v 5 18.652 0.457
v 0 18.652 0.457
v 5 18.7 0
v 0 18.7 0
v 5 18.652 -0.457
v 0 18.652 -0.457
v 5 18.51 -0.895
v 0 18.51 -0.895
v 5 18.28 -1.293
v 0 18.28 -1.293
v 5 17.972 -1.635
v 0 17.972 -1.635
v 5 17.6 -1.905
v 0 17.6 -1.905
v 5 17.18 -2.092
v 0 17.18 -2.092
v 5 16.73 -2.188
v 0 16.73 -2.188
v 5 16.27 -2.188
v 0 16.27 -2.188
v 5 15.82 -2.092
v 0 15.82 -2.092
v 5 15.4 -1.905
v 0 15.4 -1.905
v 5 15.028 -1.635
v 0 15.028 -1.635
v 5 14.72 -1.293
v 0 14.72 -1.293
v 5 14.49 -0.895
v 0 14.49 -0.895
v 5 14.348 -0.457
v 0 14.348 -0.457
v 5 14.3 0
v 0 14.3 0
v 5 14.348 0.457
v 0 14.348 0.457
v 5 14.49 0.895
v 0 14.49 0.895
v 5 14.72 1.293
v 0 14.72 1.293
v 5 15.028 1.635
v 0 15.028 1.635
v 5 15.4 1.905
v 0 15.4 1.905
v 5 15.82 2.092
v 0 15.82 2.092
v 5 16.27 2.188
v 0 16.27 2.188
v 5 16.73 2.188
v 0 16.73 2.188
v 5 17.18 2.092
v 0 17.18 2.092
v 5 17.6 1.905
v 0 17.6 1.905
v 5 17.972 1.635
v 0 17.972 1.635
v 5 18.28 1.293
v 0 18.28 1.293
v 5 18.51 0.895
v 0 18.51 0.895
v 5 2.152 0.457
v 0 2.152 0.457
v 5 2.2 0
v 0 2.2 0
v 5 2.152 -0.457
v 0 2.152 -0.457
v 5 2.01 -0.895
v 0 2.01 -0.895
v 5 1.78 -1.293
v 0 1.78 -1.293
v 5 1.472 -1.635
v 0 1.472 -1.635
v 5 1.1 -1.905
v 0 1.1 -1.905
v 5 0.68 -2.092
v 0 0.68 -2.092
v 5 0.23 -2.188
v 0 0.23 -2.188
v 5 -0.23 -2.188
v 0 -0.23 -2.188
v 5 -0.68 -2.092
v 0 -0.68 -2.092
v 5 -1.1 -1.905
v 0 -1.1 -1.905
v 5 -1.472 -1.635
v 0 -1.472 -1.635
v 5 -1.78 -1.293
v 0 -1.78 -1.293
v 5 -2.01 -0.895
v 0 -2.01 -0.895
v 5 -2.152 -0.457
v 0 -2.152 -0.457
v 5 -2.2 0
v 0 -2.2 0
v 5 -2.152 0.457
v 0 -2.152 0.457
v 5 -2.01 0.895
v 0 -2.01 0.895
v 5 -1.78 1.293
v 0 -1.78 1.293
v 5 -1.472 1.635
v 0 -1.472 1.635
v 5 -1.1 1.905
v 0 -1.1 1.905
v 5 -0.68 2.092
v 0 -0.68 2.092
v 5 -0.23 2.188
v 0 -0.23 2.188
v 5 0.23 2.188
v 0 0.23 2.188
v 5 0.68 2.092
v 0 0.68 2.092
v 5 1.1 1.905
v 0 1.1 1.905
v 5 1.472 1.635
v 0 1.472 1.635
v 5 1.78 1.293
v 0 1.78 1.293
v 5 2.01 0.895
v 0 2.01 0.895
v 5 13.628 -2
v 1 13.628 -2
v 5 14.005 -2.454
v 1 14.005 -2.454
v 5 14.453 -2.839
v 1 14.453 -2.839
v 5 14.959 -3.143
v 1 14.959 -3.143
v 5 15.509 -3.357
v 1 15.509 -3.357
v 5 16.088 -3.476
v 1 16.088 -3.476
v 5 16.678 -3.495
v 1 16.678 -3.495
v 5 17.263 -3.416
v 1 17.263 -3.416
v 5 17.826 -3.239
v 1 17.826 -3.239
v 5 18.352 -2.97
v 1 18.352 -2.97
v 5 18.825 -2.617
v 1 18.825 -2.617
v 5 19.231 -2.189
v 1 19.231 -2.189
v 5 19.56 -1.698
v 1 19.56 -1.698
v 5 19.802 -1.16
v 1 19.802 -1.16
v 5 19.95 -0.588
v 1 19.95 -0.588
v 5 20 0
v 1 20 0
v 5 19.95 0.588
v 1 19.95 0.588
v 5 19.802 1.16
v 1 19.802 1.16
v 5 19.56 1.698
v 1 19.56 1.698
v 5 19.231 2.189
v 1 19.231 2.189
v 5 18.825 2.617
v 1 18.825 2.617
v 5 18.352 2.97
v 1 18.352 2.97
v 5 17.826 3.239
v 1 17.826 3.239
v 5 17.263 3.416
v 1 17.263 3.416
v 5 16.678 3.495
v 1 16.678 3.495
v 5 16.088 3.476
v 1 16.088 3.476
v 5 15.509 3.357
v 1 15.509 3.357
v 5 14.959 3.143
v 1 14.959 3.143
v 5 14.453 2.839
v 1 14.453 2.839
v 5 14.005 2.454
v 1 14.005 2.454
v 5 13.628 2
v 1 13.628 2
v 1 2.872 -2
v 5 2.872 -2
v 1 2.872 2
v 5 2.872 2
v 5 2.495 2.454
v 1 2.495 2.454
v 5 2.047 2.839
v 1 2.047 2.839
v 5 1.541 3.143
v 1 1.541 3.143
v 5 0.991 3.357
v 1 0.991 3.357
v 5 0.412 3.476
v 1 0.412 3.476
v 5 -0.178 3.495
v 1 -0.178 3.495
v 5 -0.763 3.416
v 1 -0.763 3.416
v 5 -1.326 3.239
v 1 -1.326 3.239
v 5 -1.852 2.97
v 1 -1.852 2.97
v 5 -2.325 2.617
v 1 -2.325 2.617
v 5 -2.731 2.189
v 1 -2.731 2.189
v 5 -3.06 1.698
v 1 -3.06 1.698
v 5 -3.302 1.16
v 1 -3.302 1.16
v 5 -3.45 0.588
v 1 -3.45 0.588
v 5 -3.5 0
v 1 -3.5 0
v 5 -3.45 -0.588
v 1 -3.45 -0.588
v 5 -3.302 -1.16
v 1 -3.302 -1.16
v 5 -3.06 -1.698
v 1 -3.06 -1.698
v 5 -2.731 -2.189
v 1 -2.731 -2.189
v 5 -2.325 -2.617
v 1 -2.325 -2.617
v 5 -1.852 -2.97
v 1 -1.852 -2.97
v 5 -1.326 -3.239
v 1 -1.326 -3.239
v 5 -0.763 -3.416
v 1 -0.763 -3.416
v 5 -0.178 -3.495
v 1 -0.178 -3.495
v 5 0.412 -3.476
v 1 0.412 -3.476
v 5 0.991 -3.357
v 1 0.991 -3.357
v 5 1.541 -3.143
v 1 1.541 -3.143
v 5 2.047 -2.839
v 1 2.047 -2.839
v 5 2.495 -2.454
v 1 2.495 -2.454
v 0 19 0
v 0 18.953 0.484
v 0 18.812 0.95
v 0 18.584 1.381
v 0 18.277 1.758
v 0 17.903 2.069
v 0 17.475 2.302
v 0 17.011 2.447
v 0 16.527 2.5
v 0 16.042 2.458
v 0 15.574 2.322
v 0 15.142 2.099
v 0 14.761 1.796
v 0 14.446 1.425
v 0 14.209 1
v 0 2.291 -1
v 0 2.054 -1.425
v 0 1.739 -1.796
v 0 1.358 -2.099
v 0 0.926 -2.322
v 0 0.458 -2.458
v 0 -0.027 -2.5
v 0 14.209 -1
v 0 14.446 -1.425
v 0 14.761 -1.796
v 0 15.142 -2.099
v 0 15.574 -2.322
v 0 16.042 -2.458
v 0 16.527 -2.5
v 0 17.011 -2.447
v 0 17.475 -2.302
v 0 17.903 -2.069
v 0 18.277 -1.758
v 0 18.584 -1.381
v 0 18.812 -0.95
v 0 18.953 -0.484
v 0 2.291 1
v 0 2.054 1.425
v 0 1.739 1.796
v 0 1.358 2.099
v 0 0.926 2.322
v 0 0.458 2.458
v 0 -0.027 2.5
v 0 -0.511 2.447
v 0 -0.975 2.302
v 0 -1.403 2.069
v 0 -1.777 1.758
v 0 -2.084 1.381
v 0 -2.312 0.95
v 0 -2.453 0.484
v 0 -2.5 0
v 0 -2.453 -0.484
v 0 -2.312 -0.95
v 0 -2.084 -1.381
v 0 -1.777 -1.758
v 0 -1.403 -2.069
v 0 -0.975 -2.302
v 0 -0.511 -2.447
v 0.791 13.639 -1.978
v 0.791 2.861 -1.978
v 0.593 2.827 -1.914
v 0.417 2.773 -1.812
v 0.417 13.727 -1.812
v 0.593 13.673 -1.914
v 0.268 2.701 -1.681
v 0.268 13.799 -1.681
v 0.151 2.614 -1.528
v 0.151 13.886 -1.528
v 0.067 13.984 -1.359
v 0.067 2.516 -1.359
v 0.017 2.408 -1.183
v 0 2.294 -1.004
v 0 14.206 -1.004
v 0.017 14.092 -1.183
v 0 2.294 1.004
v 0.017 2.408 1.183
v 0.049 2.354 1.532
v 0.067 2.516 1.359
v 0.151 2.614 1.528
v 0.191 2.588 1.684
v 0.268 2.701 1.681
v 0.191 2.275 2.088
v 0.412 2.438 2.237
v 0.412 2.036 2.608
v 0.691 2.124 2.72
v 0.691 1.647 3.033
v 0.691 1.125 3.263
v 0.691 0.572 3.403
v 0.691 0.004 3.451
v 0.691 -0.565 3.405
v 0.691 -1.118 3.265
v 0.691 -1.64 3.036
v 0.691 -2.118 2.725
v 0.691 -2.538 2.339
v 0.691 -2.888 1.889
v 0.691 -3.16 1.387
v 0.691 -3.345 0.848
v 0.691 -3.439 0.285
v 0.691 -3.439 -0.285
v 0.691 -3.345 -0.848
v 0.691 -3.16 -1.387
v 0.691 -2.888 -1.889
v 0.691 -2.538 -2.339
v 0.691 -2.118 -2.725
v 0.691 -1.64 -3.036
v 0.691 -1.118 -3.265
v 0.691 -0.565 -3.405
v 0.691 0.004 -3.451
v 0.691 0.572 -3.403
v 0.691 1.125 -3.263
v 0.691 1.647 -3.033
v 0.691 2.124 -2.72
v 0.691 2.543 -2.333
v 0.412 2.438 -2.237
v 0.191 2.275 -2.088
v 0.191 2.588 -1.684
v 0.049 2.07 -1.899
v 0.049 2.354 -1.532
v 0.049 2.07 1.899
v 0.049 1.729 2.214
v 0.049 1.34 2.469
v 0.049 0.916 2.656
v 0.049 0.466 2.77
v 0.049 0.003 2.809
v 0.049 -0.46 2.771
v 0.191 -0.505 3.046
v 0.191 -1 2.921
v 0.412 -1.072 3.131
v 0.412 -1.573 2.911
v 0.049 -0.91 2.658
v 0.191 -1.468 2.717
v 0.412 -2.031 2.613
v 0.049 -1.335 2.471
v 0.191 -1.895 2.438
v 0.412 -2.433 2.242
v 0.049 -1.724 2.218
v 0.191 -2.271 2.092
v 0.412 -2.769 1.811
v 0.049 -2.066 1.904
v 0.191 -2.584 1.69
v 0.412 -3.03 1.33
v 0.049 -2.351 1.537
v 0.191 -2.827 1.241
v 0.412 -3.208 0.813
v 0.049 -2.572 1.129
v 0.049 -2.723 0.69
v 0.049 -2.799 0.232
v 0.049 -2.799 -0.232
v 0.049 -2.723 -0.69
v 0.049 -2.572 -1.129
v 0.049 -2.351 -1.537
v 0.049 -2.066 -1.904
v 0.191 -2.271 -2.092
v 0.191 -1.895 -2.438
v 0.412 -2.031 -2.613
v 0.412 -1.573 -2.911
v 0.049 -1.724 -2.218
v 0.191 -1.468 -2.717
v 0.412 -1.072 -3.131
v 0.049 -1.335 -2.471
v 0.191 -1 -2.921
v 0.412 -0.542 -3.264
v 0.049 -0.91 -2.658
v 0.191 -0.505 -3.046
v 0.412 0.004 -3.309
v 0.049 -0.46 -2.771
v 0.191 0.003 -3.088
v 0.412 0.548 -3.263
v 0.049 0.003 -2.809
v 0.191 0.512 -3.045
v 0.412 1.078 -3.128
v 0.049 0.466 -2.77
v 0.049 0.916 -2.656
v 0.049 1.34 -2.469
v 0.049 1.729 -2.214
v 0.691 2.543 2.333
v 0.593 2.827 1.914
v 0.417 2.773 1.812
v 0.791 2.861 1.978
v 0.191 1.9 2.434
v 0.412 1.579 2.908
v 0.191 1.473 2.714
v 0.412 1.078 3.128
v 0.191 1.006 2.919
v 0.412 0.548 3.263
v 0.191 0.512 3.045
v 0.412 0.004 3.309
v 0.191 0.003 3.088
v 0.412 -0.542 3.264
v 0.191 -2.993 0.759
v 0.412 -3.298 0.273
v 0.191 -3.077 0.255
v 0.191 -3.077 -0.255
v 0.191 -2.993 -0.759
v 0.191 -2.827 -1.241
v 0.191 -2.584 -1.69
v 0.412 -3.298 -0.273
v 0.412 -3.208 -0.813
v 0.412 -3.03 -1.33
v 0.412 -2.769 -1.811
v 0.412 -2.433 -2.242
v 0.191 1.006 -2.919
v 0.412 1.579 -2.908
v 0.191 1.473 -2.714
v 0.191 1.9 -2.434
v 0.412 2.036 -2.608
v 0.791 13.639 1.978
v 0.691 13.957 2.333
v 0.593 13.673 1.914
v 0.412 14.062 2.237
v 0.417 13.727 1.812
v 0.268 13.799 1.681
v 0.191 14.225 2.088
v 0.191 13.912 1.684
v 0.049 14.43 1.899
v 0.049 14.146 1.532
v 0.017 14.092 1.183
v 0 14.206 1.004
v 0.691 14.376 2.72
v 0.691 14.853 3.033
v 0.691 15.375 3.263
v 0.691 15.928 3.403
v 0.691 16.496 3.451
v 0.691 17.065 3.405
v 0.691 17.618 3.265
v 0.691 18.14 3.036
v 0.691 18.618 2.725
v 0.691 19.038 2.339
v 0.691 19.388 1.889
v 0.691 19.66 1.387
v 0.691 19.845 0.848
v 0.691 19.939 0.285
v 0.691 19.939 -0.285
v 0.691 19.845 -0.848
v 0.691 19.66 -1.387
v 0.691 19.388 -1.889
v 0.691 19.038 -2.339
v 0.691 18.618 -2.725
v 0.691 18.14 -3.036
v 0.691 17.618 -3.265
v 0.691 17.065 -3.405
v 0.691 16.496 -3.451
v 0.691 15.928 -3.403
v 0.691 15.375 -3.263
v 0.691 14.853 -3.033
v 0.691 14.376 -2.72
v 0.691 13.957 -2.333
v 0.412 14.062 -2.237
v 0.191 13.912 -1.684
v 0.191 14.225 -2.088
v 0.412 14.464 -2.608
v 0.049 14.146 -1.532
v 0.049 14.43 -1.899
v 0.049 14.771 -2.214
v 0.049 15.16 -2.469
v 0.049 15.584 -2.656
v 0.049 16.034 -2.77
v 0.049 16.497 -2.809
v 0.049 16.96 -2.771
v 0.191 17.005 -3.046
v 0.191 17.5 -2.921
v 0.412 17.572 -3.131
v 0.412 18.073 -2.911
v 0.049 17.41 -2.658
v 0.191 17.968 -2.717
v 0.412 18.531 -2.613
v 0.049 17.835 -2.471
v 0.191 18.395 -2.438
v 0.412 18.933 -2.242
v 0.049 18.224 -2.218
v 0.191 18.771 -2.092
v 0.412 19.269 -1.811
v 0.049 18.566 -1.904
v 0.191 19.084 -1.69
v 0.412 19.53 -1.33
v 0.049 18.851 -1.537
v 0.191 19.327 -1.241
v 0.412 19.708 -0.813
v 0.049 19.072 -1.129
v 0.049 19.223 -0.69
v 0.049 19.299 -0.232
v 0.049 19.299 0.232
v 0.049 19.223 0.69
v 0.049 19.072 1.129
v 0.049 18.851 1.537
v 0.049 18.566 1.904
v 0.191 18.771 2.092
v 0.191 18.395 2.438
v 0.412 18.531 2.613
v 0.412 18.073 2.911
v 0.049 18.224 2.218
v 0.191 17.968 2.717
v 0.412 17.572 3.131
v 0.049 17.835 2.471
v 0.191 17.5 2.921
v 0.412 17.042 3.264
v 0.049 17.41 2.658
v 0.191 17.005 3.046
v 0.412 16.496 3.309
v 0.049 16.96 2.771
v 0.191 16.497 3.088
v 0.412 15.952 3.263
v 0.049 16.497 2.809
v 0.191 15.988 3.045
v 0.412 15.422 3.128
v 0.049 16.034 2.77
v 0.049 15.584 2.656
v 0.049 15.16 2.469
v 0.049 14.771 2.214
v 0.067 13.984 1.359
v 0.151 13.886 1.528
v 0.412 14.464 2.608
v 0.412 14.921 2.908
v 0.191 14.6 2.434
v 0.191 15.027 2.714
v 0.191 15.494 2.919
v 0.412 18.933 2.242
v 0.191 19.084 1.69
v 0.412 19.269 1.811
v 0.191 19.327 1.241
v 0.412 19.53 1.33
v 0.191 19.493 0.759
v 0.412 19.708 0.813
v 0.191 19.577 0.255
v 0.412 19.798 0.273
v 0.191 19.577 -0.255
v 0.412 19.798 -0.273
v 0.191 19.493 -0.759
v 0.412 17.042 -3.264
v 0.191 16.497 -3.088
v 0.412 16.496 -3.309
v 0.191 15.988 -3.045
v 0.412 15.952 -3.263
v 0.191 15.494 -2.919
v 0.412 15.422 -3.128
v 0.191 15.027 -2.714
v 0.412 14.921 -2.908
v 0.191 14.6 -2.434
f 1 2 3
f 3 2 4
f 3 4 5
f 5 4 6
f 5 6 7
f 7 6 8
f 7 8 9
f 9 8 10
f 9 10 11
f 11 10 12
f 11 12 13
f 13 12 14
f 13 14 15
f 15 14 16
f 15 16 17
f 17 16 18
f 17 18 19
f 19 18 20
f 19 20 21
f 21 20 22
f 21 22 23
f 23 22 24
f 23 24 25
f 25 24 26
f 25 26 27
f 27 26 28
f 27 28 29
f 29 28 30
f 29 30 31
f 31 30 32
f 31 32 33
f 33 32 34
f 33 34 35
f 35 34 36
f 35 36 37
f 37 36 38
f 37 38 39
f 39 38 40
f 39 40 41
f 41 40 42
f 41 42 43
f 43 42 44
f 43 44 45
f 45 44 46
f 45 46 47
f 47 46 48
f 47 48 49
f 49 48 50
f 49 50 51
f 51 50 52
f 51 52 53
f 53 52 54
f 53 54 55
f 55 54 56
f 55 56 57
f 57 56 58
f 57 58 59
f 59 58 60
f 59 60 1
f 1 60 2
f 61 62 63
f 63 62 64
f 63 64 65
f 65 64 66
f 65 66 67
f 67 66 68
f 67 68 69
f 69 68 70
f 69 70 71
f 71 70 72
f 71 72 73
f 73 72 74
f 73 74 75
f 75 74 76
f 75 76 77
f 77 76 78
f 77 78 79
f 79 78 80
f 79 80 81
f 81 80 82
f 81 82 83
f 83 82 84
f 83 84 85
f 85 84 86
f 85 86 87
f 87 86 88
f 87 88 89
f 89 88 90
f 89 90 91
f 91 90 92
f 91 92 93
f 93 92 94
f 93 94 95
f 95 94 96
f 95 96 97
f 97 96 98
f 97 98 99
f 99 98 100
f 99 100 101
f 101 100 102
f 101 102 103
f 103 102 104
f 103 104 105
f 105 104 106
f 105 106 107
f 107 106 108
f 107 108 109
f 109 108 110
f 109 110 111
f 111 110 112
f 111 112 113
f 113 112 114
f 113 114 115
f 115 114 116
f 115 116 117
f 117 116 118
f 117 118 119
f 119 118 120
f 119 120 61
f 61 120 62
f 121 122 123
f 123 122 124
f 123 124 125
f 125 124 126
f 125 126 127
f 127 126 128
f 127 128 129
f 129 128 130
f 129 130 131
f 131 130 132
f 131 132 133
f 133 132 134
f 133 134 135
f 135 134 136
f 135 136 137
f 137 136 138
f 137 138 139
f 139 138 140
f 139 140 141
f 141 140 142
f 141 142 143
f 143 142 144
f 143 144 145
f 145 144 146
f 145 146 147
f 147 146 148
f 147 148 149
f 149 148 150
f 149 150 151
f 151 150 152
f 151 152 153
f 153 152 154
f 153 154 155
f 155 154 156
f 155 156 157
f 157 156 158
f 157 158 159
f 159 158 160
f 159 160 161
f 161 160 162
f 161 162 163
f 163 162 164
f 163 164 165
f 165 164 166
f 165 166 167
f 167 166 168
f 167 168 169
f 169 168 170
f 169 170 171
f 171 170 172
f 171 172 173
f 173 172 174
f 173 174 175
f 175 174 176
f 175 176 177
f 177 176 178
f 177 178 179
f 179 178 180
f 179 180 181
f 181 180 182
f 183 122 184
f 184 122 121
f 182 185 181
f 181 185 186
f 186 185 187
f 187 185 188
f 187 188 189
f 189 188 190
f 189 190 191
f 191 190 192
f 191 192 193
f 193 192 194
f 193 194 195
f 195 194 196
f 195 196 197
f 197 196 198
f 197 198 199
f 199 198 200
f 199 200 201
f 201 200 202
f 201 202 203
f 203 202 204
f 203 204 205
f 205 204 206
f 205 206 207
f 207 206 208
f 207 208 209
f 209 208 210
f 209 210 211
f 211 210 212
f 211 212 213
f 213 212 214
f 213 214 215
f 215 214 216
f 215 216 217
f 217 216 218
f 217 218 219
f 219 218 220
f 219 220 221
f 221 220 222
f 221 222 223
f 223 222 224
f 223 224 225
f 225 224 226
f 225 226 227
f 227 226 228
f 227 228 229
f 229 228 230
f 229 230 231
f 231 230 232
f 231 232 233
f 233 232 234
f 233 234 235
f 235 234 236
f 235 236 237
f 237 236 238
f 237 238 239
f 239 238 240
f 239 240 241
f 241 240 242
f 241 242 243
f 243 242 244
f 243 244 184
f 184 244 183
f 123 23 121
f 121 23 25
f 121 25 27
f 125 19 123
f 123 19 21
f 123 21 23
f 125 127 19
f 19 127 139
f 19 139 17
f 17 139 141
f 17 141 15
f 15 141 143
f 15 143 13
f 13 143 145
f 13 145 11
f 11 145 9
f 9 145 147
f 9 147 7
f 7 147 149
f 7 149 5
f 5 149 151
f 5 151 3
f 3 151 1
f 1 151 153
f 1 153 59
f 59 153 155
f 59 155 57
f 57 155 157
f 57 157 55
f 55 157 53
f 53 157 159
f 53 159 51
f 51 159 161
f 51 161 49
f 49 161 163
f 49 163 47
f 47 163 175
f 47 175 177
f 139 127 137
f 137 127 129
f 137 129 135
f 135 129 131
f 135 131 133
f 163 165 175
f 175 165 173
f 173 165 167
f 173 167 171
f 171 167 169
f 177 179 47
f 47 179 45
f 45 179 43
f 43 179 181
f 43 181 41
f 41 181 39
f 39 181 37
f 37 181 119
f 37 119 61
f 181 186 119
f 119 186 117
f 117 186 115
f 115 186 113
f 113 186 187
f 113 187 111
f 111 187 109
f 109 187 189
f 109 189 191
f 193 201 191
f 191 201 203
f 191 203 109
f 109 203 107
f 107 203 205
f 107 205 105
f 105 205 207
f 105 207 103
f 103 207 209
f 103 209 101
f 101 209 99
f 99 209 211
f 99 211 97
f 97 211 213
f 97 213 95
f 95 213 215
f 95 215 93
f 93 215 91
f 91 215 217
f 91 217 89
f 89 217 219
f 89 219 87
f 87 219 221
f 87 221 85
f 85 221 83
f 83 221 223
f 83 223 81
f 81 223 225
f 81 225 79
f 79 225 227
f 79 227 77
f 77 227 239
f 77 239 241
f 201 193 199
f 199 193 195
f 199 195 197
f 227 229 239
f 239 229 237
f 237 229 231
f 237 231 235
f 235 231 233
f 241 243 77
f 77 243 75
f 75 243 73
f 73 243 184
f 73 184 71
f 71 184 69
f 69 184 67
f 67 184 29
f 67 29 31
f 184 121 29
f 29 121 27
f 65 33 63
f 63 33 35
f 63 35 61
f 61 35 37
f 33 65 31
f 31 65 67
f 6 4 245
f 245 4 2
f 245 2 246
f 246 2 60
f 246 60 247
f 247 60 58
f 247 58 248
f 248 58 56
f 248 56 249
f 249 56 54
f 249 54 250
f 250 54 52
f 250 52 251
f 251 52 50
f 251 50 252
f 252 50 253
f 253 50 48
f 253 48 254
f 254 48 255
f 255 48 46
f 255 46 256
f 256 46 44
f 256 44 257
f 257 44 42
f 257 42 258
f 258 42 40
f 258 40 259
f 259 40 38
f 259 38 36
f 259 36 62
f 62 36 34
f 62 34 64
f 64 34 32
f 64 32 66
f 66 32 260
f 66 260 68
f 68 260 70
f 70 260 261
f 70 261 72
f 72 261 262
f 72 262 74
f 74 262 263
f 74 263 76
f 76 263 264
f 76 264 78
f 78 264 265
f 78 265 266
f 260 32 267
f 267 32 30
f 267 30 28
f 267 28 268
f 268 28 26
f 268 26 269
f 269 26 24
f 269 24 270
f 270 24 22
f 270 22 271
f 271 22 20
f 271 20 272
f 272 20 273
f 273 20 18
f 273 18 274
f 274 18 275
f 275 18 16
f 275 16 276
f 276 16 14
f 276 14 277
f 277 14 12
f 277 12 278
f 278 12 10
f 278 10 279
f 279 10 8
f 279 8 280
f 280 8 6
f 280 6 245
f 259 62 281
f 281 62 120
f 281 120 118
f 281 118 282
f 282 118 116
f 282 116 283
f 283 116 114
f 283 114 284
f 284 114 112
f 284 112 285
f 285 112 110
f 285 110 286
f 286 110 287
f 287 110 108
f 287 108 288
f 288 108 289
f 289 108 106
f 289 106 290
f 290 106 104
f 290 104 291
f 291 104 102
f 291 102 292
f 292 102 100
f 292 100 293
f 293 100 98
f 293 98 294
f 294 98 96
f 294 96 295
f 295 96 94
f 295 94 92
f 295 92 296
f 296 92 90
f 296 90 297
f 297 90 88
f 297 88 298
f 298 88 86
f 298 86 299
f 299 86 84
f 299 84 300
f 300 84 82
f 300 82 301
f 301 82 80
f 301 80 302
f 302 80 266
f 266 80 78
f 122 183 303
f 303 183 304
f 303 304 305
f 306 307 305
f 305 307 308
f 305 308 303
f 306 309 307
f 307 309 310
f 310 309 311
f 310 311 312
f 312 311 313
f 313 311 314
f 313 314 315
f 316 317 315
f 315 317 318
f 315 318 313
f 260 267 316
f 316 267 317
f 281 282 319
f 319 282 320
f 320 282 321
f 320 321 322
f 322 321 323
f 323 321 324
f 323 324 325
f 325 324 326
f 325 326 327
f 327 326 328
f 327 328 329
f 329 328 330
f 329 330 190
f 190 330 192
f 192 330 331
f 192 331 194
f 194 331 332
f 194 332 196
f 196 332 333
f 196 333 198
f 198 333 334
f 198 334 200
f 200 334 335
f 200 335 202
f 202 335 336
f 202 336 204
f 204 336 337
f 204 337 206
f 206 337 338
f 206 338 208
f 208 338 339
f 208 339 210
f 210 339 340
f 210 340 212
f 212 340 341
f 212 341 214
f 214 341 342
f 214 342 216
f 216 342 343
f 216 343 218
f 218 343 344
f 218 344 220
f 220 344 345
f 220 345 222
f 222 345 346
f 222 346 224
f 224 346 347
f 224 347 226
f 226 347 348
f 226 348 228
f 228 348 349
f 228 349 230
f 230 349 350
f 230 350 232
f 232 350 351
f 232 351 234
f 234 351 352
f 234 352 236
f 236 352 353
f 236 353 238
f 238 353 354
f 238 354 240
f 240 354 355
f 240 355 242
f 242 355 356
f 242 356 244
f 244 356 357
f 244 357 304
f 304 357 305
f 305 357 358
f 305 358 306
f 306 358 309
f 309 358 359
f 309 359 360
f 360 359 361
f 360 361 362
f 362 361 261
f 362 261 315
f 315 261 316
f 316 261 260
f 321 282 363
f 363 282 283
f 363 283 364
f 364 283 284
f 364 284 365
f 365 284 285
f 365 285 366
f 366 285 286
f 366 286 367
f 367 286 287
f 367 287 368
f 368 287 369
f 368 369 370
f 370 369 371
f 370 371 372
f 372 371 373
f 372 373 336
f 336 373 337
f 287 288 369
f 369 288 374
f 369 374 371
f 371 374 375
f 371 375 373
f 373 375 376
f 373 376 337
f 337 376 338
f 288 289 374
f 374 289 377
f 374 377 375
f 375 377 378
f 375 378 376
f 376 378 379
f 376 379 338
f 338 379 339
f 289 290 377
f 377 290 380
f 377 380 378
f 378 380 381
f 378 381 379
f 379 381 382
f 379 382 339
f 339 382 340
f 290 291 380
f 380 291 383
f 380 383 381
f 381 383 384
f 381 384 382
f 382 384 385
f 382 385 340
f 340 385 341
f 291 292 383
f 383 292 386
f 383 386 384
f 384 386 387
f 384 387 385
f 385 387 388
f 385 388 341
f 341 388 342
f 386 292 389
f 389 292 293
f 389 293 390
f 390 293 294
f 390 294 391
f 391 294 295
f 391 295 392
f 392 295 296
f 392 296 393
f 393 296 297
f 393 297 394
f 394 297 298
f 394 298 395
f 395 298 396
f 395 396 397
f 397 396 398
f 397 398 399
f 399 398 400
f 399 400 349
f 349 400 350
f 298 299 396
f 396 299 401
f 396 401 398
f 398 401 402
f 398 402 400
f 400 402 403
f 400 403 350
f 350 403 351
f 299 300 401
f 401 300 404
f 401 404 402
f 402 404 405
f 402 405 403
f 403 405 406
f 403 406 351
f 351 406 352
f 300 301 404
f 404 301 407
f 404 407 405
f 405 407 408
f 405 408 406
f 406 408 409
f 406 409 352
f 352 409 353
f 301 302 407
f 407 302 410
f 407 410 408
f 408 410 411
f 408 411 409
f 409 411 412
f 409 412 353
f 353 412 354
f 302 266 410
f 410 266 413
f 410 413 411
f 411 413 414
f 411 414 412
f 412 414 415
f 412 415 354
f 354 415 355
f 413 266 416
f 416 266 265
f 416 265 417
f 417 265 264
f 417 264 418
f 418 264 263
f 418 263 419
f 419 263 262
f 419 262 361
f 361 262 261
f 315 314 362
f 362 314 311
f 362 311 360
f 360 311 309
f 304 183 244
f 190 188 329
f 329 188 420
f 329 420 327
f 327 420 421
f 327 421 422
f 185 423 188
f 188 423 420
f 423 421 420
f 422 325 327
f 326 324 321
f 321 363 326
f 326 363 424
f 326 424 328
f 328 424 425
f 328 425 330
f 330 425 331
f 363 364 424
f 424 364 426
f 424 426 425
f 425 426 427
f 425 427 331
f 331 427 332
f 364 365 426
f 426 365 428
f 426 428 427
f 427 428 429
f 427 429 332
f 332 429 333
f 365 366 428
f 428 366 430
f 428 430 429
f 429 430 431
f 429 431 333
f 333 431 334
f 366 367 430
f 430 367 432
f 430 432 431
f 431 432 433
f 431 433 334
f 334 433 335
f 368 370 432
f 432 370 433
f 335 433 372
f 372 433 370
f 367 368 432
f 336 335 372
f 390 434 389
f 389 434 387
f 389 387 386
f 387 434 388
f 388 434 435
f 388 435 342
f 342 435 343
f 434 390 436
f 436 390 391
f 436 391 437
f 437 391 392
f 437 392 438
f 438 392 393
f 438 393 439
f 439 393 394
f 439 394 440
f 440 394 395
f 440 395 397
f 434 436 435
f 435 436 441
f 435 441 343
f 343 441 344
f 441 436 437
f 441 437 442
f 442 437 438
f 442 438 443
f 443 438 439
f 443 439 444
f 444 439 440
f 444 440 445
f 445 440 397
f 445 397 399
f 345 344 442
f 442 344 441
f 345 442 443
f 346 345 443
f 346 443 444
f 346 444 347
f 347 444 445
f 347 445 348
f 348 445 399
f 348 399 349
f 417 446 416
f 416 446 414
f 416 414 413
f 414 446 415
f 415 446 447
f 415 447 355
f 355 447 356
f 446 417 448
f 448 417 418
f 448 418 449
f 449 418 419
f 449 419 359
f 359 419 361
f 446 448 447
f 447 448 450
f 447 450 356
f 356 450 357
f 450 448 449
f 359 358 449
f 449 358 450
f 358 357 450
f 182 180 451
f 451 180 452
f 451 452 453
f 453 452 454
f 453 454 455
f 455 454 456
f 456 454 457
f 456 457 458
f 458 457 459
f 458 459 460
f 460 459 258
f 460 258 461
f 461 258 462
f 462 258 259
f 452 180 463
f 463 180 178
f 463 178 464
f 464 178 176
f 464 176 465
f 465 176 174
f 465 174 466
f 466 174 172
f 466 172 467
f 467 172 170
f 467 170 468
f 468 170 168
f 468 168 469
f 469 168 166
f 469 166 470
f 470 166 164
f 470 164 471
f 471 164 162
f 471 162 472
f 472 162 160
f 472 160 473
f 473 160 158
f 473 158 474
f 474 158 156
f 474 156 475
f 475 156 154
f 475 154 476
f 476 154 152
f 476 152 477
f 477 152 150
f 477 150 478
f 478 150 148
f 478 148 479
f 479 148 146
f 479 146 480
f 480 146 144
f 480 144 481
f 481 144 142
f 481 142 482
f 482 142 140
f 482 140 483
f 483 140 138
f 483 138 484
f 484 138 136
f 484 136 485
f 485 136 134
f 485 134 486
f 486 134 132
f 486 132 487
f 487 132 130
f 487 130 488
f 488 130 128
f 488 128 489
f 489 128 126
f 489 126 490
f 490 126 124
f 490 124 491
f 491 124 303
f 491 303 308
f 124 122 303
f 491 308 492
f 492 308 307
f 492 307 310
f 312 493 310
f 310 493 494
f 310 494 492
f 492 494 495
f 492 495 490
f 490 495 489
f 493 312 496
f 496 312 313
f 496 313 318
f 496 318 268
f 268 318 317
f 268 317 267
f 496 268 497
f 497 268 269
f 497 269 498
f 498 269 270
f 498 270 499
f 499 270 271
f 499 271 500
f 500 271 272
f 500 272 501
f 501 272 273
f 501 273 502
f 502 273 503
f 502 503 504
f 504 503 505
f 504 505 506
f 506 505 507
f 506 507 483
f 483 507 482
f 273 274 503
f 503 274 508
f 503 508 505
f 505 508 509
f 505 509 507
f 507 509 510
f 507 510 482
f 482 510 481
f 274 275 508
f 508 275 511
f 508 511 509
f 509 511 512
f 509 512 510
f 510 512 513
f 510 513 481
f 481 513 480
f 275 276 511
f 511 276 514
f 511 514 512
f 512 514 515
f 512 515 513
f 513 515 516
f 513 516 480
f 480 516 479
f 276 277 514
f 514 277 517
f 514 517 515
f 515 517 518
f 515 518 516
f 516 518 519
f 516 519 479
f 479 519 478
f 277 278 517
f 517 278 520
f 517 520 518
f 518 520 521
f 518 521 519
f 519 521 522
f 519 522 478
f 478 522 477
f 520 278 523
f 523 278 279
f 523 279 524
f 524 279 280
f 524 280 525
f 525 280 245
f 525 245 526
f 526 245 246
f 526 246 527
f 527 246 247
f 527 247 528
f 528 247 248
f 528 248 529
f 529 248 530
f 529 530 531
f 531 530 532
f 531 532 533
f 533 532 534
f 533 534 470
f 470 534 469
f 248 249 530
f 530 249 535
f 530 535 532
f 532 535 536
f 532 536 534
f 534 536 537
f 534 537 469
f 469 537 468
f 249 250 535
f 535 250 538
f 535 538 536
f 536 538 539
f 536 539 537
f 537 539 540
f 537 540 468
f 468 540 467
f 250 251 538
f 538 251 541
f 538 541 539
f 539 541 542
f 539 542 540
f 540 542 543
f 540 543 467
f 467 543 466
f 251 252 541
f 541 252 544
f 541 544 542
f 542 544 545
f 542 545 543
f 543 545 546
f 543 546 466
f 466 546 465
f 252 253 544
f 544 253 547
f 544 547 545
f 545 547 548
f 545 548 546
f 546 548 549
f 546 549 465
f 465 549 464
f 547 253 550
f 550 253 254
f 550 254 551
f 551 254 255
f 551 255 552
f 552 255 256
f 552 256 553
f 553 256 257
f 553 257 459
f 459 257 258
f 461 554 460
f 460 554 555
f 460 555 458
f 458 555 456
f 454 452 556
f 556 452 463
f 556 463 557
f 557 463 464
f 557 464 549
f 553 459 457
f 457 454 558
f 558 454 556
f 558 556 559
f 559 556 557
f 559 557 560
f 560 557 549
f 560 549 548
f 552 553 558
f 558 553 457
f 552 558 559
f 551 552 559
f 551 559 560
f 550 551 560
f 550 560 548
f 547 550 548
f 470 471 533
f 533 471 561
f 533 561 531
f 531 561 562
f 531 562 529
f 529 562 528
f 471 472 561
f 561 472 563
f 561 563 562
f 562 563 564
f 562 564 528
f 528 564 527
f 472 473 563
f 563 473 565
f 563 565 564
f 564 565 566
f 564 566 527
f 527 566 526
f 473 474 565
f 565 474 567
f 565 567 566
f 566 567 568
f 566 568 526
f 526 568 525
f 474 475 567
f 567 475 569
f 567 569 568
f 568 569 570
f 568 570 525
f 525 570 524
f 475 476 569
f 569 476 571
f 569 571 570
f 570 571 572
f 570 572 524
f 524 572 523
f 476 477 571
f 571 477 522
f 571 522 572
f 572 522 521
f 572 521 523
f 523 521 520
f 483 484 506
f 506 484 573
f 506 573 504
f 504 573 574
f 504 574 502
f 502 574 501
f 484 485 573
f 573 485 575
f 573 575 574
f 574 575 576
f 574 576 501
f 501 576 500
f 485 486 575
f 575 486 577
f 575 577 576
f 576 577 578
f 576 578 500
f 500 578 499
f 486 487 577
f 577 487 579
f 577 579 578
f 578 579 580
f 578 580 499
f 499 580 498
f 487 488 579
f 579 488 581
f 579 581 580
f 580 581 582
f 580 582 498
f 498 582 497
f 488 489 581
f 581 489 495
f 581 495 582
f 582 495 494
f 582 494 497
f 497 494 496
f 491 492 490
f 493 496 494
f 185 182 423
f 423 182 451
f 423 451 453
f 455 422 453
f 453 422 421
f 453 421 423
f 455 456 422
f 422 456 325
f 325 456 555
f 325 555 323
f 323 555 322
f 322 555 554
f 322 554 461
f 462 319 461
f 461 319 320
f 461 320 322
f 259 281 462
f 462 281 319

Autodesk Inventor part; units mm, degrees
ref_plane "YZ Plane" through (0, 0, 0) normal (1, 0, 0) x (0, 1, 0)
ref_plane "XZ Plane" through (0, 0, 0) normal (0, 1, 0) x (-1, 0, 0)
ref_plane "XY Plane" through (0, 0, 0) normal (0, 0, 1) x (1, 0, 0)
sketch "Boceto1" plane through (0, 0, 0) normal (1, 0, 0) x (0, 1, 0)
  circle A0 centre (0, 0) radius 2.2
  circle A1 centre (0, 0) radius 3.5
  line L0 (-3.5, 0) -> (16.5, 0)
  circle A2 centre (16.5, 0) radius 2.2
  circle A3 centre (16.5, 0) radius 3.5
  line L1 (2.8723, 2) -> (13.6277, 2)
  line L2 (2.8723, -2) -> (13.6277, -2)
  dimension "d0" = 4.4
  dimension "d1" = 7
  dimension "d2" = 20
  dimension "d3" = 4.4
  dimension "d4" = 7
extrude "Extrusión1" add sketch "Boceto1" along normal blind 5 contours L0 A1 A0 | A0 L0 A1 | L0 A3 L2 A1 | A1 L1 A3 L0 | A3
fillet "Empalme2" radius 1 4 edges at (0, 8.25, -2) (0, 8.25, 2) (0, 20, 0) (0, -3.5, 0)
properties part number "Barra_dedo"
